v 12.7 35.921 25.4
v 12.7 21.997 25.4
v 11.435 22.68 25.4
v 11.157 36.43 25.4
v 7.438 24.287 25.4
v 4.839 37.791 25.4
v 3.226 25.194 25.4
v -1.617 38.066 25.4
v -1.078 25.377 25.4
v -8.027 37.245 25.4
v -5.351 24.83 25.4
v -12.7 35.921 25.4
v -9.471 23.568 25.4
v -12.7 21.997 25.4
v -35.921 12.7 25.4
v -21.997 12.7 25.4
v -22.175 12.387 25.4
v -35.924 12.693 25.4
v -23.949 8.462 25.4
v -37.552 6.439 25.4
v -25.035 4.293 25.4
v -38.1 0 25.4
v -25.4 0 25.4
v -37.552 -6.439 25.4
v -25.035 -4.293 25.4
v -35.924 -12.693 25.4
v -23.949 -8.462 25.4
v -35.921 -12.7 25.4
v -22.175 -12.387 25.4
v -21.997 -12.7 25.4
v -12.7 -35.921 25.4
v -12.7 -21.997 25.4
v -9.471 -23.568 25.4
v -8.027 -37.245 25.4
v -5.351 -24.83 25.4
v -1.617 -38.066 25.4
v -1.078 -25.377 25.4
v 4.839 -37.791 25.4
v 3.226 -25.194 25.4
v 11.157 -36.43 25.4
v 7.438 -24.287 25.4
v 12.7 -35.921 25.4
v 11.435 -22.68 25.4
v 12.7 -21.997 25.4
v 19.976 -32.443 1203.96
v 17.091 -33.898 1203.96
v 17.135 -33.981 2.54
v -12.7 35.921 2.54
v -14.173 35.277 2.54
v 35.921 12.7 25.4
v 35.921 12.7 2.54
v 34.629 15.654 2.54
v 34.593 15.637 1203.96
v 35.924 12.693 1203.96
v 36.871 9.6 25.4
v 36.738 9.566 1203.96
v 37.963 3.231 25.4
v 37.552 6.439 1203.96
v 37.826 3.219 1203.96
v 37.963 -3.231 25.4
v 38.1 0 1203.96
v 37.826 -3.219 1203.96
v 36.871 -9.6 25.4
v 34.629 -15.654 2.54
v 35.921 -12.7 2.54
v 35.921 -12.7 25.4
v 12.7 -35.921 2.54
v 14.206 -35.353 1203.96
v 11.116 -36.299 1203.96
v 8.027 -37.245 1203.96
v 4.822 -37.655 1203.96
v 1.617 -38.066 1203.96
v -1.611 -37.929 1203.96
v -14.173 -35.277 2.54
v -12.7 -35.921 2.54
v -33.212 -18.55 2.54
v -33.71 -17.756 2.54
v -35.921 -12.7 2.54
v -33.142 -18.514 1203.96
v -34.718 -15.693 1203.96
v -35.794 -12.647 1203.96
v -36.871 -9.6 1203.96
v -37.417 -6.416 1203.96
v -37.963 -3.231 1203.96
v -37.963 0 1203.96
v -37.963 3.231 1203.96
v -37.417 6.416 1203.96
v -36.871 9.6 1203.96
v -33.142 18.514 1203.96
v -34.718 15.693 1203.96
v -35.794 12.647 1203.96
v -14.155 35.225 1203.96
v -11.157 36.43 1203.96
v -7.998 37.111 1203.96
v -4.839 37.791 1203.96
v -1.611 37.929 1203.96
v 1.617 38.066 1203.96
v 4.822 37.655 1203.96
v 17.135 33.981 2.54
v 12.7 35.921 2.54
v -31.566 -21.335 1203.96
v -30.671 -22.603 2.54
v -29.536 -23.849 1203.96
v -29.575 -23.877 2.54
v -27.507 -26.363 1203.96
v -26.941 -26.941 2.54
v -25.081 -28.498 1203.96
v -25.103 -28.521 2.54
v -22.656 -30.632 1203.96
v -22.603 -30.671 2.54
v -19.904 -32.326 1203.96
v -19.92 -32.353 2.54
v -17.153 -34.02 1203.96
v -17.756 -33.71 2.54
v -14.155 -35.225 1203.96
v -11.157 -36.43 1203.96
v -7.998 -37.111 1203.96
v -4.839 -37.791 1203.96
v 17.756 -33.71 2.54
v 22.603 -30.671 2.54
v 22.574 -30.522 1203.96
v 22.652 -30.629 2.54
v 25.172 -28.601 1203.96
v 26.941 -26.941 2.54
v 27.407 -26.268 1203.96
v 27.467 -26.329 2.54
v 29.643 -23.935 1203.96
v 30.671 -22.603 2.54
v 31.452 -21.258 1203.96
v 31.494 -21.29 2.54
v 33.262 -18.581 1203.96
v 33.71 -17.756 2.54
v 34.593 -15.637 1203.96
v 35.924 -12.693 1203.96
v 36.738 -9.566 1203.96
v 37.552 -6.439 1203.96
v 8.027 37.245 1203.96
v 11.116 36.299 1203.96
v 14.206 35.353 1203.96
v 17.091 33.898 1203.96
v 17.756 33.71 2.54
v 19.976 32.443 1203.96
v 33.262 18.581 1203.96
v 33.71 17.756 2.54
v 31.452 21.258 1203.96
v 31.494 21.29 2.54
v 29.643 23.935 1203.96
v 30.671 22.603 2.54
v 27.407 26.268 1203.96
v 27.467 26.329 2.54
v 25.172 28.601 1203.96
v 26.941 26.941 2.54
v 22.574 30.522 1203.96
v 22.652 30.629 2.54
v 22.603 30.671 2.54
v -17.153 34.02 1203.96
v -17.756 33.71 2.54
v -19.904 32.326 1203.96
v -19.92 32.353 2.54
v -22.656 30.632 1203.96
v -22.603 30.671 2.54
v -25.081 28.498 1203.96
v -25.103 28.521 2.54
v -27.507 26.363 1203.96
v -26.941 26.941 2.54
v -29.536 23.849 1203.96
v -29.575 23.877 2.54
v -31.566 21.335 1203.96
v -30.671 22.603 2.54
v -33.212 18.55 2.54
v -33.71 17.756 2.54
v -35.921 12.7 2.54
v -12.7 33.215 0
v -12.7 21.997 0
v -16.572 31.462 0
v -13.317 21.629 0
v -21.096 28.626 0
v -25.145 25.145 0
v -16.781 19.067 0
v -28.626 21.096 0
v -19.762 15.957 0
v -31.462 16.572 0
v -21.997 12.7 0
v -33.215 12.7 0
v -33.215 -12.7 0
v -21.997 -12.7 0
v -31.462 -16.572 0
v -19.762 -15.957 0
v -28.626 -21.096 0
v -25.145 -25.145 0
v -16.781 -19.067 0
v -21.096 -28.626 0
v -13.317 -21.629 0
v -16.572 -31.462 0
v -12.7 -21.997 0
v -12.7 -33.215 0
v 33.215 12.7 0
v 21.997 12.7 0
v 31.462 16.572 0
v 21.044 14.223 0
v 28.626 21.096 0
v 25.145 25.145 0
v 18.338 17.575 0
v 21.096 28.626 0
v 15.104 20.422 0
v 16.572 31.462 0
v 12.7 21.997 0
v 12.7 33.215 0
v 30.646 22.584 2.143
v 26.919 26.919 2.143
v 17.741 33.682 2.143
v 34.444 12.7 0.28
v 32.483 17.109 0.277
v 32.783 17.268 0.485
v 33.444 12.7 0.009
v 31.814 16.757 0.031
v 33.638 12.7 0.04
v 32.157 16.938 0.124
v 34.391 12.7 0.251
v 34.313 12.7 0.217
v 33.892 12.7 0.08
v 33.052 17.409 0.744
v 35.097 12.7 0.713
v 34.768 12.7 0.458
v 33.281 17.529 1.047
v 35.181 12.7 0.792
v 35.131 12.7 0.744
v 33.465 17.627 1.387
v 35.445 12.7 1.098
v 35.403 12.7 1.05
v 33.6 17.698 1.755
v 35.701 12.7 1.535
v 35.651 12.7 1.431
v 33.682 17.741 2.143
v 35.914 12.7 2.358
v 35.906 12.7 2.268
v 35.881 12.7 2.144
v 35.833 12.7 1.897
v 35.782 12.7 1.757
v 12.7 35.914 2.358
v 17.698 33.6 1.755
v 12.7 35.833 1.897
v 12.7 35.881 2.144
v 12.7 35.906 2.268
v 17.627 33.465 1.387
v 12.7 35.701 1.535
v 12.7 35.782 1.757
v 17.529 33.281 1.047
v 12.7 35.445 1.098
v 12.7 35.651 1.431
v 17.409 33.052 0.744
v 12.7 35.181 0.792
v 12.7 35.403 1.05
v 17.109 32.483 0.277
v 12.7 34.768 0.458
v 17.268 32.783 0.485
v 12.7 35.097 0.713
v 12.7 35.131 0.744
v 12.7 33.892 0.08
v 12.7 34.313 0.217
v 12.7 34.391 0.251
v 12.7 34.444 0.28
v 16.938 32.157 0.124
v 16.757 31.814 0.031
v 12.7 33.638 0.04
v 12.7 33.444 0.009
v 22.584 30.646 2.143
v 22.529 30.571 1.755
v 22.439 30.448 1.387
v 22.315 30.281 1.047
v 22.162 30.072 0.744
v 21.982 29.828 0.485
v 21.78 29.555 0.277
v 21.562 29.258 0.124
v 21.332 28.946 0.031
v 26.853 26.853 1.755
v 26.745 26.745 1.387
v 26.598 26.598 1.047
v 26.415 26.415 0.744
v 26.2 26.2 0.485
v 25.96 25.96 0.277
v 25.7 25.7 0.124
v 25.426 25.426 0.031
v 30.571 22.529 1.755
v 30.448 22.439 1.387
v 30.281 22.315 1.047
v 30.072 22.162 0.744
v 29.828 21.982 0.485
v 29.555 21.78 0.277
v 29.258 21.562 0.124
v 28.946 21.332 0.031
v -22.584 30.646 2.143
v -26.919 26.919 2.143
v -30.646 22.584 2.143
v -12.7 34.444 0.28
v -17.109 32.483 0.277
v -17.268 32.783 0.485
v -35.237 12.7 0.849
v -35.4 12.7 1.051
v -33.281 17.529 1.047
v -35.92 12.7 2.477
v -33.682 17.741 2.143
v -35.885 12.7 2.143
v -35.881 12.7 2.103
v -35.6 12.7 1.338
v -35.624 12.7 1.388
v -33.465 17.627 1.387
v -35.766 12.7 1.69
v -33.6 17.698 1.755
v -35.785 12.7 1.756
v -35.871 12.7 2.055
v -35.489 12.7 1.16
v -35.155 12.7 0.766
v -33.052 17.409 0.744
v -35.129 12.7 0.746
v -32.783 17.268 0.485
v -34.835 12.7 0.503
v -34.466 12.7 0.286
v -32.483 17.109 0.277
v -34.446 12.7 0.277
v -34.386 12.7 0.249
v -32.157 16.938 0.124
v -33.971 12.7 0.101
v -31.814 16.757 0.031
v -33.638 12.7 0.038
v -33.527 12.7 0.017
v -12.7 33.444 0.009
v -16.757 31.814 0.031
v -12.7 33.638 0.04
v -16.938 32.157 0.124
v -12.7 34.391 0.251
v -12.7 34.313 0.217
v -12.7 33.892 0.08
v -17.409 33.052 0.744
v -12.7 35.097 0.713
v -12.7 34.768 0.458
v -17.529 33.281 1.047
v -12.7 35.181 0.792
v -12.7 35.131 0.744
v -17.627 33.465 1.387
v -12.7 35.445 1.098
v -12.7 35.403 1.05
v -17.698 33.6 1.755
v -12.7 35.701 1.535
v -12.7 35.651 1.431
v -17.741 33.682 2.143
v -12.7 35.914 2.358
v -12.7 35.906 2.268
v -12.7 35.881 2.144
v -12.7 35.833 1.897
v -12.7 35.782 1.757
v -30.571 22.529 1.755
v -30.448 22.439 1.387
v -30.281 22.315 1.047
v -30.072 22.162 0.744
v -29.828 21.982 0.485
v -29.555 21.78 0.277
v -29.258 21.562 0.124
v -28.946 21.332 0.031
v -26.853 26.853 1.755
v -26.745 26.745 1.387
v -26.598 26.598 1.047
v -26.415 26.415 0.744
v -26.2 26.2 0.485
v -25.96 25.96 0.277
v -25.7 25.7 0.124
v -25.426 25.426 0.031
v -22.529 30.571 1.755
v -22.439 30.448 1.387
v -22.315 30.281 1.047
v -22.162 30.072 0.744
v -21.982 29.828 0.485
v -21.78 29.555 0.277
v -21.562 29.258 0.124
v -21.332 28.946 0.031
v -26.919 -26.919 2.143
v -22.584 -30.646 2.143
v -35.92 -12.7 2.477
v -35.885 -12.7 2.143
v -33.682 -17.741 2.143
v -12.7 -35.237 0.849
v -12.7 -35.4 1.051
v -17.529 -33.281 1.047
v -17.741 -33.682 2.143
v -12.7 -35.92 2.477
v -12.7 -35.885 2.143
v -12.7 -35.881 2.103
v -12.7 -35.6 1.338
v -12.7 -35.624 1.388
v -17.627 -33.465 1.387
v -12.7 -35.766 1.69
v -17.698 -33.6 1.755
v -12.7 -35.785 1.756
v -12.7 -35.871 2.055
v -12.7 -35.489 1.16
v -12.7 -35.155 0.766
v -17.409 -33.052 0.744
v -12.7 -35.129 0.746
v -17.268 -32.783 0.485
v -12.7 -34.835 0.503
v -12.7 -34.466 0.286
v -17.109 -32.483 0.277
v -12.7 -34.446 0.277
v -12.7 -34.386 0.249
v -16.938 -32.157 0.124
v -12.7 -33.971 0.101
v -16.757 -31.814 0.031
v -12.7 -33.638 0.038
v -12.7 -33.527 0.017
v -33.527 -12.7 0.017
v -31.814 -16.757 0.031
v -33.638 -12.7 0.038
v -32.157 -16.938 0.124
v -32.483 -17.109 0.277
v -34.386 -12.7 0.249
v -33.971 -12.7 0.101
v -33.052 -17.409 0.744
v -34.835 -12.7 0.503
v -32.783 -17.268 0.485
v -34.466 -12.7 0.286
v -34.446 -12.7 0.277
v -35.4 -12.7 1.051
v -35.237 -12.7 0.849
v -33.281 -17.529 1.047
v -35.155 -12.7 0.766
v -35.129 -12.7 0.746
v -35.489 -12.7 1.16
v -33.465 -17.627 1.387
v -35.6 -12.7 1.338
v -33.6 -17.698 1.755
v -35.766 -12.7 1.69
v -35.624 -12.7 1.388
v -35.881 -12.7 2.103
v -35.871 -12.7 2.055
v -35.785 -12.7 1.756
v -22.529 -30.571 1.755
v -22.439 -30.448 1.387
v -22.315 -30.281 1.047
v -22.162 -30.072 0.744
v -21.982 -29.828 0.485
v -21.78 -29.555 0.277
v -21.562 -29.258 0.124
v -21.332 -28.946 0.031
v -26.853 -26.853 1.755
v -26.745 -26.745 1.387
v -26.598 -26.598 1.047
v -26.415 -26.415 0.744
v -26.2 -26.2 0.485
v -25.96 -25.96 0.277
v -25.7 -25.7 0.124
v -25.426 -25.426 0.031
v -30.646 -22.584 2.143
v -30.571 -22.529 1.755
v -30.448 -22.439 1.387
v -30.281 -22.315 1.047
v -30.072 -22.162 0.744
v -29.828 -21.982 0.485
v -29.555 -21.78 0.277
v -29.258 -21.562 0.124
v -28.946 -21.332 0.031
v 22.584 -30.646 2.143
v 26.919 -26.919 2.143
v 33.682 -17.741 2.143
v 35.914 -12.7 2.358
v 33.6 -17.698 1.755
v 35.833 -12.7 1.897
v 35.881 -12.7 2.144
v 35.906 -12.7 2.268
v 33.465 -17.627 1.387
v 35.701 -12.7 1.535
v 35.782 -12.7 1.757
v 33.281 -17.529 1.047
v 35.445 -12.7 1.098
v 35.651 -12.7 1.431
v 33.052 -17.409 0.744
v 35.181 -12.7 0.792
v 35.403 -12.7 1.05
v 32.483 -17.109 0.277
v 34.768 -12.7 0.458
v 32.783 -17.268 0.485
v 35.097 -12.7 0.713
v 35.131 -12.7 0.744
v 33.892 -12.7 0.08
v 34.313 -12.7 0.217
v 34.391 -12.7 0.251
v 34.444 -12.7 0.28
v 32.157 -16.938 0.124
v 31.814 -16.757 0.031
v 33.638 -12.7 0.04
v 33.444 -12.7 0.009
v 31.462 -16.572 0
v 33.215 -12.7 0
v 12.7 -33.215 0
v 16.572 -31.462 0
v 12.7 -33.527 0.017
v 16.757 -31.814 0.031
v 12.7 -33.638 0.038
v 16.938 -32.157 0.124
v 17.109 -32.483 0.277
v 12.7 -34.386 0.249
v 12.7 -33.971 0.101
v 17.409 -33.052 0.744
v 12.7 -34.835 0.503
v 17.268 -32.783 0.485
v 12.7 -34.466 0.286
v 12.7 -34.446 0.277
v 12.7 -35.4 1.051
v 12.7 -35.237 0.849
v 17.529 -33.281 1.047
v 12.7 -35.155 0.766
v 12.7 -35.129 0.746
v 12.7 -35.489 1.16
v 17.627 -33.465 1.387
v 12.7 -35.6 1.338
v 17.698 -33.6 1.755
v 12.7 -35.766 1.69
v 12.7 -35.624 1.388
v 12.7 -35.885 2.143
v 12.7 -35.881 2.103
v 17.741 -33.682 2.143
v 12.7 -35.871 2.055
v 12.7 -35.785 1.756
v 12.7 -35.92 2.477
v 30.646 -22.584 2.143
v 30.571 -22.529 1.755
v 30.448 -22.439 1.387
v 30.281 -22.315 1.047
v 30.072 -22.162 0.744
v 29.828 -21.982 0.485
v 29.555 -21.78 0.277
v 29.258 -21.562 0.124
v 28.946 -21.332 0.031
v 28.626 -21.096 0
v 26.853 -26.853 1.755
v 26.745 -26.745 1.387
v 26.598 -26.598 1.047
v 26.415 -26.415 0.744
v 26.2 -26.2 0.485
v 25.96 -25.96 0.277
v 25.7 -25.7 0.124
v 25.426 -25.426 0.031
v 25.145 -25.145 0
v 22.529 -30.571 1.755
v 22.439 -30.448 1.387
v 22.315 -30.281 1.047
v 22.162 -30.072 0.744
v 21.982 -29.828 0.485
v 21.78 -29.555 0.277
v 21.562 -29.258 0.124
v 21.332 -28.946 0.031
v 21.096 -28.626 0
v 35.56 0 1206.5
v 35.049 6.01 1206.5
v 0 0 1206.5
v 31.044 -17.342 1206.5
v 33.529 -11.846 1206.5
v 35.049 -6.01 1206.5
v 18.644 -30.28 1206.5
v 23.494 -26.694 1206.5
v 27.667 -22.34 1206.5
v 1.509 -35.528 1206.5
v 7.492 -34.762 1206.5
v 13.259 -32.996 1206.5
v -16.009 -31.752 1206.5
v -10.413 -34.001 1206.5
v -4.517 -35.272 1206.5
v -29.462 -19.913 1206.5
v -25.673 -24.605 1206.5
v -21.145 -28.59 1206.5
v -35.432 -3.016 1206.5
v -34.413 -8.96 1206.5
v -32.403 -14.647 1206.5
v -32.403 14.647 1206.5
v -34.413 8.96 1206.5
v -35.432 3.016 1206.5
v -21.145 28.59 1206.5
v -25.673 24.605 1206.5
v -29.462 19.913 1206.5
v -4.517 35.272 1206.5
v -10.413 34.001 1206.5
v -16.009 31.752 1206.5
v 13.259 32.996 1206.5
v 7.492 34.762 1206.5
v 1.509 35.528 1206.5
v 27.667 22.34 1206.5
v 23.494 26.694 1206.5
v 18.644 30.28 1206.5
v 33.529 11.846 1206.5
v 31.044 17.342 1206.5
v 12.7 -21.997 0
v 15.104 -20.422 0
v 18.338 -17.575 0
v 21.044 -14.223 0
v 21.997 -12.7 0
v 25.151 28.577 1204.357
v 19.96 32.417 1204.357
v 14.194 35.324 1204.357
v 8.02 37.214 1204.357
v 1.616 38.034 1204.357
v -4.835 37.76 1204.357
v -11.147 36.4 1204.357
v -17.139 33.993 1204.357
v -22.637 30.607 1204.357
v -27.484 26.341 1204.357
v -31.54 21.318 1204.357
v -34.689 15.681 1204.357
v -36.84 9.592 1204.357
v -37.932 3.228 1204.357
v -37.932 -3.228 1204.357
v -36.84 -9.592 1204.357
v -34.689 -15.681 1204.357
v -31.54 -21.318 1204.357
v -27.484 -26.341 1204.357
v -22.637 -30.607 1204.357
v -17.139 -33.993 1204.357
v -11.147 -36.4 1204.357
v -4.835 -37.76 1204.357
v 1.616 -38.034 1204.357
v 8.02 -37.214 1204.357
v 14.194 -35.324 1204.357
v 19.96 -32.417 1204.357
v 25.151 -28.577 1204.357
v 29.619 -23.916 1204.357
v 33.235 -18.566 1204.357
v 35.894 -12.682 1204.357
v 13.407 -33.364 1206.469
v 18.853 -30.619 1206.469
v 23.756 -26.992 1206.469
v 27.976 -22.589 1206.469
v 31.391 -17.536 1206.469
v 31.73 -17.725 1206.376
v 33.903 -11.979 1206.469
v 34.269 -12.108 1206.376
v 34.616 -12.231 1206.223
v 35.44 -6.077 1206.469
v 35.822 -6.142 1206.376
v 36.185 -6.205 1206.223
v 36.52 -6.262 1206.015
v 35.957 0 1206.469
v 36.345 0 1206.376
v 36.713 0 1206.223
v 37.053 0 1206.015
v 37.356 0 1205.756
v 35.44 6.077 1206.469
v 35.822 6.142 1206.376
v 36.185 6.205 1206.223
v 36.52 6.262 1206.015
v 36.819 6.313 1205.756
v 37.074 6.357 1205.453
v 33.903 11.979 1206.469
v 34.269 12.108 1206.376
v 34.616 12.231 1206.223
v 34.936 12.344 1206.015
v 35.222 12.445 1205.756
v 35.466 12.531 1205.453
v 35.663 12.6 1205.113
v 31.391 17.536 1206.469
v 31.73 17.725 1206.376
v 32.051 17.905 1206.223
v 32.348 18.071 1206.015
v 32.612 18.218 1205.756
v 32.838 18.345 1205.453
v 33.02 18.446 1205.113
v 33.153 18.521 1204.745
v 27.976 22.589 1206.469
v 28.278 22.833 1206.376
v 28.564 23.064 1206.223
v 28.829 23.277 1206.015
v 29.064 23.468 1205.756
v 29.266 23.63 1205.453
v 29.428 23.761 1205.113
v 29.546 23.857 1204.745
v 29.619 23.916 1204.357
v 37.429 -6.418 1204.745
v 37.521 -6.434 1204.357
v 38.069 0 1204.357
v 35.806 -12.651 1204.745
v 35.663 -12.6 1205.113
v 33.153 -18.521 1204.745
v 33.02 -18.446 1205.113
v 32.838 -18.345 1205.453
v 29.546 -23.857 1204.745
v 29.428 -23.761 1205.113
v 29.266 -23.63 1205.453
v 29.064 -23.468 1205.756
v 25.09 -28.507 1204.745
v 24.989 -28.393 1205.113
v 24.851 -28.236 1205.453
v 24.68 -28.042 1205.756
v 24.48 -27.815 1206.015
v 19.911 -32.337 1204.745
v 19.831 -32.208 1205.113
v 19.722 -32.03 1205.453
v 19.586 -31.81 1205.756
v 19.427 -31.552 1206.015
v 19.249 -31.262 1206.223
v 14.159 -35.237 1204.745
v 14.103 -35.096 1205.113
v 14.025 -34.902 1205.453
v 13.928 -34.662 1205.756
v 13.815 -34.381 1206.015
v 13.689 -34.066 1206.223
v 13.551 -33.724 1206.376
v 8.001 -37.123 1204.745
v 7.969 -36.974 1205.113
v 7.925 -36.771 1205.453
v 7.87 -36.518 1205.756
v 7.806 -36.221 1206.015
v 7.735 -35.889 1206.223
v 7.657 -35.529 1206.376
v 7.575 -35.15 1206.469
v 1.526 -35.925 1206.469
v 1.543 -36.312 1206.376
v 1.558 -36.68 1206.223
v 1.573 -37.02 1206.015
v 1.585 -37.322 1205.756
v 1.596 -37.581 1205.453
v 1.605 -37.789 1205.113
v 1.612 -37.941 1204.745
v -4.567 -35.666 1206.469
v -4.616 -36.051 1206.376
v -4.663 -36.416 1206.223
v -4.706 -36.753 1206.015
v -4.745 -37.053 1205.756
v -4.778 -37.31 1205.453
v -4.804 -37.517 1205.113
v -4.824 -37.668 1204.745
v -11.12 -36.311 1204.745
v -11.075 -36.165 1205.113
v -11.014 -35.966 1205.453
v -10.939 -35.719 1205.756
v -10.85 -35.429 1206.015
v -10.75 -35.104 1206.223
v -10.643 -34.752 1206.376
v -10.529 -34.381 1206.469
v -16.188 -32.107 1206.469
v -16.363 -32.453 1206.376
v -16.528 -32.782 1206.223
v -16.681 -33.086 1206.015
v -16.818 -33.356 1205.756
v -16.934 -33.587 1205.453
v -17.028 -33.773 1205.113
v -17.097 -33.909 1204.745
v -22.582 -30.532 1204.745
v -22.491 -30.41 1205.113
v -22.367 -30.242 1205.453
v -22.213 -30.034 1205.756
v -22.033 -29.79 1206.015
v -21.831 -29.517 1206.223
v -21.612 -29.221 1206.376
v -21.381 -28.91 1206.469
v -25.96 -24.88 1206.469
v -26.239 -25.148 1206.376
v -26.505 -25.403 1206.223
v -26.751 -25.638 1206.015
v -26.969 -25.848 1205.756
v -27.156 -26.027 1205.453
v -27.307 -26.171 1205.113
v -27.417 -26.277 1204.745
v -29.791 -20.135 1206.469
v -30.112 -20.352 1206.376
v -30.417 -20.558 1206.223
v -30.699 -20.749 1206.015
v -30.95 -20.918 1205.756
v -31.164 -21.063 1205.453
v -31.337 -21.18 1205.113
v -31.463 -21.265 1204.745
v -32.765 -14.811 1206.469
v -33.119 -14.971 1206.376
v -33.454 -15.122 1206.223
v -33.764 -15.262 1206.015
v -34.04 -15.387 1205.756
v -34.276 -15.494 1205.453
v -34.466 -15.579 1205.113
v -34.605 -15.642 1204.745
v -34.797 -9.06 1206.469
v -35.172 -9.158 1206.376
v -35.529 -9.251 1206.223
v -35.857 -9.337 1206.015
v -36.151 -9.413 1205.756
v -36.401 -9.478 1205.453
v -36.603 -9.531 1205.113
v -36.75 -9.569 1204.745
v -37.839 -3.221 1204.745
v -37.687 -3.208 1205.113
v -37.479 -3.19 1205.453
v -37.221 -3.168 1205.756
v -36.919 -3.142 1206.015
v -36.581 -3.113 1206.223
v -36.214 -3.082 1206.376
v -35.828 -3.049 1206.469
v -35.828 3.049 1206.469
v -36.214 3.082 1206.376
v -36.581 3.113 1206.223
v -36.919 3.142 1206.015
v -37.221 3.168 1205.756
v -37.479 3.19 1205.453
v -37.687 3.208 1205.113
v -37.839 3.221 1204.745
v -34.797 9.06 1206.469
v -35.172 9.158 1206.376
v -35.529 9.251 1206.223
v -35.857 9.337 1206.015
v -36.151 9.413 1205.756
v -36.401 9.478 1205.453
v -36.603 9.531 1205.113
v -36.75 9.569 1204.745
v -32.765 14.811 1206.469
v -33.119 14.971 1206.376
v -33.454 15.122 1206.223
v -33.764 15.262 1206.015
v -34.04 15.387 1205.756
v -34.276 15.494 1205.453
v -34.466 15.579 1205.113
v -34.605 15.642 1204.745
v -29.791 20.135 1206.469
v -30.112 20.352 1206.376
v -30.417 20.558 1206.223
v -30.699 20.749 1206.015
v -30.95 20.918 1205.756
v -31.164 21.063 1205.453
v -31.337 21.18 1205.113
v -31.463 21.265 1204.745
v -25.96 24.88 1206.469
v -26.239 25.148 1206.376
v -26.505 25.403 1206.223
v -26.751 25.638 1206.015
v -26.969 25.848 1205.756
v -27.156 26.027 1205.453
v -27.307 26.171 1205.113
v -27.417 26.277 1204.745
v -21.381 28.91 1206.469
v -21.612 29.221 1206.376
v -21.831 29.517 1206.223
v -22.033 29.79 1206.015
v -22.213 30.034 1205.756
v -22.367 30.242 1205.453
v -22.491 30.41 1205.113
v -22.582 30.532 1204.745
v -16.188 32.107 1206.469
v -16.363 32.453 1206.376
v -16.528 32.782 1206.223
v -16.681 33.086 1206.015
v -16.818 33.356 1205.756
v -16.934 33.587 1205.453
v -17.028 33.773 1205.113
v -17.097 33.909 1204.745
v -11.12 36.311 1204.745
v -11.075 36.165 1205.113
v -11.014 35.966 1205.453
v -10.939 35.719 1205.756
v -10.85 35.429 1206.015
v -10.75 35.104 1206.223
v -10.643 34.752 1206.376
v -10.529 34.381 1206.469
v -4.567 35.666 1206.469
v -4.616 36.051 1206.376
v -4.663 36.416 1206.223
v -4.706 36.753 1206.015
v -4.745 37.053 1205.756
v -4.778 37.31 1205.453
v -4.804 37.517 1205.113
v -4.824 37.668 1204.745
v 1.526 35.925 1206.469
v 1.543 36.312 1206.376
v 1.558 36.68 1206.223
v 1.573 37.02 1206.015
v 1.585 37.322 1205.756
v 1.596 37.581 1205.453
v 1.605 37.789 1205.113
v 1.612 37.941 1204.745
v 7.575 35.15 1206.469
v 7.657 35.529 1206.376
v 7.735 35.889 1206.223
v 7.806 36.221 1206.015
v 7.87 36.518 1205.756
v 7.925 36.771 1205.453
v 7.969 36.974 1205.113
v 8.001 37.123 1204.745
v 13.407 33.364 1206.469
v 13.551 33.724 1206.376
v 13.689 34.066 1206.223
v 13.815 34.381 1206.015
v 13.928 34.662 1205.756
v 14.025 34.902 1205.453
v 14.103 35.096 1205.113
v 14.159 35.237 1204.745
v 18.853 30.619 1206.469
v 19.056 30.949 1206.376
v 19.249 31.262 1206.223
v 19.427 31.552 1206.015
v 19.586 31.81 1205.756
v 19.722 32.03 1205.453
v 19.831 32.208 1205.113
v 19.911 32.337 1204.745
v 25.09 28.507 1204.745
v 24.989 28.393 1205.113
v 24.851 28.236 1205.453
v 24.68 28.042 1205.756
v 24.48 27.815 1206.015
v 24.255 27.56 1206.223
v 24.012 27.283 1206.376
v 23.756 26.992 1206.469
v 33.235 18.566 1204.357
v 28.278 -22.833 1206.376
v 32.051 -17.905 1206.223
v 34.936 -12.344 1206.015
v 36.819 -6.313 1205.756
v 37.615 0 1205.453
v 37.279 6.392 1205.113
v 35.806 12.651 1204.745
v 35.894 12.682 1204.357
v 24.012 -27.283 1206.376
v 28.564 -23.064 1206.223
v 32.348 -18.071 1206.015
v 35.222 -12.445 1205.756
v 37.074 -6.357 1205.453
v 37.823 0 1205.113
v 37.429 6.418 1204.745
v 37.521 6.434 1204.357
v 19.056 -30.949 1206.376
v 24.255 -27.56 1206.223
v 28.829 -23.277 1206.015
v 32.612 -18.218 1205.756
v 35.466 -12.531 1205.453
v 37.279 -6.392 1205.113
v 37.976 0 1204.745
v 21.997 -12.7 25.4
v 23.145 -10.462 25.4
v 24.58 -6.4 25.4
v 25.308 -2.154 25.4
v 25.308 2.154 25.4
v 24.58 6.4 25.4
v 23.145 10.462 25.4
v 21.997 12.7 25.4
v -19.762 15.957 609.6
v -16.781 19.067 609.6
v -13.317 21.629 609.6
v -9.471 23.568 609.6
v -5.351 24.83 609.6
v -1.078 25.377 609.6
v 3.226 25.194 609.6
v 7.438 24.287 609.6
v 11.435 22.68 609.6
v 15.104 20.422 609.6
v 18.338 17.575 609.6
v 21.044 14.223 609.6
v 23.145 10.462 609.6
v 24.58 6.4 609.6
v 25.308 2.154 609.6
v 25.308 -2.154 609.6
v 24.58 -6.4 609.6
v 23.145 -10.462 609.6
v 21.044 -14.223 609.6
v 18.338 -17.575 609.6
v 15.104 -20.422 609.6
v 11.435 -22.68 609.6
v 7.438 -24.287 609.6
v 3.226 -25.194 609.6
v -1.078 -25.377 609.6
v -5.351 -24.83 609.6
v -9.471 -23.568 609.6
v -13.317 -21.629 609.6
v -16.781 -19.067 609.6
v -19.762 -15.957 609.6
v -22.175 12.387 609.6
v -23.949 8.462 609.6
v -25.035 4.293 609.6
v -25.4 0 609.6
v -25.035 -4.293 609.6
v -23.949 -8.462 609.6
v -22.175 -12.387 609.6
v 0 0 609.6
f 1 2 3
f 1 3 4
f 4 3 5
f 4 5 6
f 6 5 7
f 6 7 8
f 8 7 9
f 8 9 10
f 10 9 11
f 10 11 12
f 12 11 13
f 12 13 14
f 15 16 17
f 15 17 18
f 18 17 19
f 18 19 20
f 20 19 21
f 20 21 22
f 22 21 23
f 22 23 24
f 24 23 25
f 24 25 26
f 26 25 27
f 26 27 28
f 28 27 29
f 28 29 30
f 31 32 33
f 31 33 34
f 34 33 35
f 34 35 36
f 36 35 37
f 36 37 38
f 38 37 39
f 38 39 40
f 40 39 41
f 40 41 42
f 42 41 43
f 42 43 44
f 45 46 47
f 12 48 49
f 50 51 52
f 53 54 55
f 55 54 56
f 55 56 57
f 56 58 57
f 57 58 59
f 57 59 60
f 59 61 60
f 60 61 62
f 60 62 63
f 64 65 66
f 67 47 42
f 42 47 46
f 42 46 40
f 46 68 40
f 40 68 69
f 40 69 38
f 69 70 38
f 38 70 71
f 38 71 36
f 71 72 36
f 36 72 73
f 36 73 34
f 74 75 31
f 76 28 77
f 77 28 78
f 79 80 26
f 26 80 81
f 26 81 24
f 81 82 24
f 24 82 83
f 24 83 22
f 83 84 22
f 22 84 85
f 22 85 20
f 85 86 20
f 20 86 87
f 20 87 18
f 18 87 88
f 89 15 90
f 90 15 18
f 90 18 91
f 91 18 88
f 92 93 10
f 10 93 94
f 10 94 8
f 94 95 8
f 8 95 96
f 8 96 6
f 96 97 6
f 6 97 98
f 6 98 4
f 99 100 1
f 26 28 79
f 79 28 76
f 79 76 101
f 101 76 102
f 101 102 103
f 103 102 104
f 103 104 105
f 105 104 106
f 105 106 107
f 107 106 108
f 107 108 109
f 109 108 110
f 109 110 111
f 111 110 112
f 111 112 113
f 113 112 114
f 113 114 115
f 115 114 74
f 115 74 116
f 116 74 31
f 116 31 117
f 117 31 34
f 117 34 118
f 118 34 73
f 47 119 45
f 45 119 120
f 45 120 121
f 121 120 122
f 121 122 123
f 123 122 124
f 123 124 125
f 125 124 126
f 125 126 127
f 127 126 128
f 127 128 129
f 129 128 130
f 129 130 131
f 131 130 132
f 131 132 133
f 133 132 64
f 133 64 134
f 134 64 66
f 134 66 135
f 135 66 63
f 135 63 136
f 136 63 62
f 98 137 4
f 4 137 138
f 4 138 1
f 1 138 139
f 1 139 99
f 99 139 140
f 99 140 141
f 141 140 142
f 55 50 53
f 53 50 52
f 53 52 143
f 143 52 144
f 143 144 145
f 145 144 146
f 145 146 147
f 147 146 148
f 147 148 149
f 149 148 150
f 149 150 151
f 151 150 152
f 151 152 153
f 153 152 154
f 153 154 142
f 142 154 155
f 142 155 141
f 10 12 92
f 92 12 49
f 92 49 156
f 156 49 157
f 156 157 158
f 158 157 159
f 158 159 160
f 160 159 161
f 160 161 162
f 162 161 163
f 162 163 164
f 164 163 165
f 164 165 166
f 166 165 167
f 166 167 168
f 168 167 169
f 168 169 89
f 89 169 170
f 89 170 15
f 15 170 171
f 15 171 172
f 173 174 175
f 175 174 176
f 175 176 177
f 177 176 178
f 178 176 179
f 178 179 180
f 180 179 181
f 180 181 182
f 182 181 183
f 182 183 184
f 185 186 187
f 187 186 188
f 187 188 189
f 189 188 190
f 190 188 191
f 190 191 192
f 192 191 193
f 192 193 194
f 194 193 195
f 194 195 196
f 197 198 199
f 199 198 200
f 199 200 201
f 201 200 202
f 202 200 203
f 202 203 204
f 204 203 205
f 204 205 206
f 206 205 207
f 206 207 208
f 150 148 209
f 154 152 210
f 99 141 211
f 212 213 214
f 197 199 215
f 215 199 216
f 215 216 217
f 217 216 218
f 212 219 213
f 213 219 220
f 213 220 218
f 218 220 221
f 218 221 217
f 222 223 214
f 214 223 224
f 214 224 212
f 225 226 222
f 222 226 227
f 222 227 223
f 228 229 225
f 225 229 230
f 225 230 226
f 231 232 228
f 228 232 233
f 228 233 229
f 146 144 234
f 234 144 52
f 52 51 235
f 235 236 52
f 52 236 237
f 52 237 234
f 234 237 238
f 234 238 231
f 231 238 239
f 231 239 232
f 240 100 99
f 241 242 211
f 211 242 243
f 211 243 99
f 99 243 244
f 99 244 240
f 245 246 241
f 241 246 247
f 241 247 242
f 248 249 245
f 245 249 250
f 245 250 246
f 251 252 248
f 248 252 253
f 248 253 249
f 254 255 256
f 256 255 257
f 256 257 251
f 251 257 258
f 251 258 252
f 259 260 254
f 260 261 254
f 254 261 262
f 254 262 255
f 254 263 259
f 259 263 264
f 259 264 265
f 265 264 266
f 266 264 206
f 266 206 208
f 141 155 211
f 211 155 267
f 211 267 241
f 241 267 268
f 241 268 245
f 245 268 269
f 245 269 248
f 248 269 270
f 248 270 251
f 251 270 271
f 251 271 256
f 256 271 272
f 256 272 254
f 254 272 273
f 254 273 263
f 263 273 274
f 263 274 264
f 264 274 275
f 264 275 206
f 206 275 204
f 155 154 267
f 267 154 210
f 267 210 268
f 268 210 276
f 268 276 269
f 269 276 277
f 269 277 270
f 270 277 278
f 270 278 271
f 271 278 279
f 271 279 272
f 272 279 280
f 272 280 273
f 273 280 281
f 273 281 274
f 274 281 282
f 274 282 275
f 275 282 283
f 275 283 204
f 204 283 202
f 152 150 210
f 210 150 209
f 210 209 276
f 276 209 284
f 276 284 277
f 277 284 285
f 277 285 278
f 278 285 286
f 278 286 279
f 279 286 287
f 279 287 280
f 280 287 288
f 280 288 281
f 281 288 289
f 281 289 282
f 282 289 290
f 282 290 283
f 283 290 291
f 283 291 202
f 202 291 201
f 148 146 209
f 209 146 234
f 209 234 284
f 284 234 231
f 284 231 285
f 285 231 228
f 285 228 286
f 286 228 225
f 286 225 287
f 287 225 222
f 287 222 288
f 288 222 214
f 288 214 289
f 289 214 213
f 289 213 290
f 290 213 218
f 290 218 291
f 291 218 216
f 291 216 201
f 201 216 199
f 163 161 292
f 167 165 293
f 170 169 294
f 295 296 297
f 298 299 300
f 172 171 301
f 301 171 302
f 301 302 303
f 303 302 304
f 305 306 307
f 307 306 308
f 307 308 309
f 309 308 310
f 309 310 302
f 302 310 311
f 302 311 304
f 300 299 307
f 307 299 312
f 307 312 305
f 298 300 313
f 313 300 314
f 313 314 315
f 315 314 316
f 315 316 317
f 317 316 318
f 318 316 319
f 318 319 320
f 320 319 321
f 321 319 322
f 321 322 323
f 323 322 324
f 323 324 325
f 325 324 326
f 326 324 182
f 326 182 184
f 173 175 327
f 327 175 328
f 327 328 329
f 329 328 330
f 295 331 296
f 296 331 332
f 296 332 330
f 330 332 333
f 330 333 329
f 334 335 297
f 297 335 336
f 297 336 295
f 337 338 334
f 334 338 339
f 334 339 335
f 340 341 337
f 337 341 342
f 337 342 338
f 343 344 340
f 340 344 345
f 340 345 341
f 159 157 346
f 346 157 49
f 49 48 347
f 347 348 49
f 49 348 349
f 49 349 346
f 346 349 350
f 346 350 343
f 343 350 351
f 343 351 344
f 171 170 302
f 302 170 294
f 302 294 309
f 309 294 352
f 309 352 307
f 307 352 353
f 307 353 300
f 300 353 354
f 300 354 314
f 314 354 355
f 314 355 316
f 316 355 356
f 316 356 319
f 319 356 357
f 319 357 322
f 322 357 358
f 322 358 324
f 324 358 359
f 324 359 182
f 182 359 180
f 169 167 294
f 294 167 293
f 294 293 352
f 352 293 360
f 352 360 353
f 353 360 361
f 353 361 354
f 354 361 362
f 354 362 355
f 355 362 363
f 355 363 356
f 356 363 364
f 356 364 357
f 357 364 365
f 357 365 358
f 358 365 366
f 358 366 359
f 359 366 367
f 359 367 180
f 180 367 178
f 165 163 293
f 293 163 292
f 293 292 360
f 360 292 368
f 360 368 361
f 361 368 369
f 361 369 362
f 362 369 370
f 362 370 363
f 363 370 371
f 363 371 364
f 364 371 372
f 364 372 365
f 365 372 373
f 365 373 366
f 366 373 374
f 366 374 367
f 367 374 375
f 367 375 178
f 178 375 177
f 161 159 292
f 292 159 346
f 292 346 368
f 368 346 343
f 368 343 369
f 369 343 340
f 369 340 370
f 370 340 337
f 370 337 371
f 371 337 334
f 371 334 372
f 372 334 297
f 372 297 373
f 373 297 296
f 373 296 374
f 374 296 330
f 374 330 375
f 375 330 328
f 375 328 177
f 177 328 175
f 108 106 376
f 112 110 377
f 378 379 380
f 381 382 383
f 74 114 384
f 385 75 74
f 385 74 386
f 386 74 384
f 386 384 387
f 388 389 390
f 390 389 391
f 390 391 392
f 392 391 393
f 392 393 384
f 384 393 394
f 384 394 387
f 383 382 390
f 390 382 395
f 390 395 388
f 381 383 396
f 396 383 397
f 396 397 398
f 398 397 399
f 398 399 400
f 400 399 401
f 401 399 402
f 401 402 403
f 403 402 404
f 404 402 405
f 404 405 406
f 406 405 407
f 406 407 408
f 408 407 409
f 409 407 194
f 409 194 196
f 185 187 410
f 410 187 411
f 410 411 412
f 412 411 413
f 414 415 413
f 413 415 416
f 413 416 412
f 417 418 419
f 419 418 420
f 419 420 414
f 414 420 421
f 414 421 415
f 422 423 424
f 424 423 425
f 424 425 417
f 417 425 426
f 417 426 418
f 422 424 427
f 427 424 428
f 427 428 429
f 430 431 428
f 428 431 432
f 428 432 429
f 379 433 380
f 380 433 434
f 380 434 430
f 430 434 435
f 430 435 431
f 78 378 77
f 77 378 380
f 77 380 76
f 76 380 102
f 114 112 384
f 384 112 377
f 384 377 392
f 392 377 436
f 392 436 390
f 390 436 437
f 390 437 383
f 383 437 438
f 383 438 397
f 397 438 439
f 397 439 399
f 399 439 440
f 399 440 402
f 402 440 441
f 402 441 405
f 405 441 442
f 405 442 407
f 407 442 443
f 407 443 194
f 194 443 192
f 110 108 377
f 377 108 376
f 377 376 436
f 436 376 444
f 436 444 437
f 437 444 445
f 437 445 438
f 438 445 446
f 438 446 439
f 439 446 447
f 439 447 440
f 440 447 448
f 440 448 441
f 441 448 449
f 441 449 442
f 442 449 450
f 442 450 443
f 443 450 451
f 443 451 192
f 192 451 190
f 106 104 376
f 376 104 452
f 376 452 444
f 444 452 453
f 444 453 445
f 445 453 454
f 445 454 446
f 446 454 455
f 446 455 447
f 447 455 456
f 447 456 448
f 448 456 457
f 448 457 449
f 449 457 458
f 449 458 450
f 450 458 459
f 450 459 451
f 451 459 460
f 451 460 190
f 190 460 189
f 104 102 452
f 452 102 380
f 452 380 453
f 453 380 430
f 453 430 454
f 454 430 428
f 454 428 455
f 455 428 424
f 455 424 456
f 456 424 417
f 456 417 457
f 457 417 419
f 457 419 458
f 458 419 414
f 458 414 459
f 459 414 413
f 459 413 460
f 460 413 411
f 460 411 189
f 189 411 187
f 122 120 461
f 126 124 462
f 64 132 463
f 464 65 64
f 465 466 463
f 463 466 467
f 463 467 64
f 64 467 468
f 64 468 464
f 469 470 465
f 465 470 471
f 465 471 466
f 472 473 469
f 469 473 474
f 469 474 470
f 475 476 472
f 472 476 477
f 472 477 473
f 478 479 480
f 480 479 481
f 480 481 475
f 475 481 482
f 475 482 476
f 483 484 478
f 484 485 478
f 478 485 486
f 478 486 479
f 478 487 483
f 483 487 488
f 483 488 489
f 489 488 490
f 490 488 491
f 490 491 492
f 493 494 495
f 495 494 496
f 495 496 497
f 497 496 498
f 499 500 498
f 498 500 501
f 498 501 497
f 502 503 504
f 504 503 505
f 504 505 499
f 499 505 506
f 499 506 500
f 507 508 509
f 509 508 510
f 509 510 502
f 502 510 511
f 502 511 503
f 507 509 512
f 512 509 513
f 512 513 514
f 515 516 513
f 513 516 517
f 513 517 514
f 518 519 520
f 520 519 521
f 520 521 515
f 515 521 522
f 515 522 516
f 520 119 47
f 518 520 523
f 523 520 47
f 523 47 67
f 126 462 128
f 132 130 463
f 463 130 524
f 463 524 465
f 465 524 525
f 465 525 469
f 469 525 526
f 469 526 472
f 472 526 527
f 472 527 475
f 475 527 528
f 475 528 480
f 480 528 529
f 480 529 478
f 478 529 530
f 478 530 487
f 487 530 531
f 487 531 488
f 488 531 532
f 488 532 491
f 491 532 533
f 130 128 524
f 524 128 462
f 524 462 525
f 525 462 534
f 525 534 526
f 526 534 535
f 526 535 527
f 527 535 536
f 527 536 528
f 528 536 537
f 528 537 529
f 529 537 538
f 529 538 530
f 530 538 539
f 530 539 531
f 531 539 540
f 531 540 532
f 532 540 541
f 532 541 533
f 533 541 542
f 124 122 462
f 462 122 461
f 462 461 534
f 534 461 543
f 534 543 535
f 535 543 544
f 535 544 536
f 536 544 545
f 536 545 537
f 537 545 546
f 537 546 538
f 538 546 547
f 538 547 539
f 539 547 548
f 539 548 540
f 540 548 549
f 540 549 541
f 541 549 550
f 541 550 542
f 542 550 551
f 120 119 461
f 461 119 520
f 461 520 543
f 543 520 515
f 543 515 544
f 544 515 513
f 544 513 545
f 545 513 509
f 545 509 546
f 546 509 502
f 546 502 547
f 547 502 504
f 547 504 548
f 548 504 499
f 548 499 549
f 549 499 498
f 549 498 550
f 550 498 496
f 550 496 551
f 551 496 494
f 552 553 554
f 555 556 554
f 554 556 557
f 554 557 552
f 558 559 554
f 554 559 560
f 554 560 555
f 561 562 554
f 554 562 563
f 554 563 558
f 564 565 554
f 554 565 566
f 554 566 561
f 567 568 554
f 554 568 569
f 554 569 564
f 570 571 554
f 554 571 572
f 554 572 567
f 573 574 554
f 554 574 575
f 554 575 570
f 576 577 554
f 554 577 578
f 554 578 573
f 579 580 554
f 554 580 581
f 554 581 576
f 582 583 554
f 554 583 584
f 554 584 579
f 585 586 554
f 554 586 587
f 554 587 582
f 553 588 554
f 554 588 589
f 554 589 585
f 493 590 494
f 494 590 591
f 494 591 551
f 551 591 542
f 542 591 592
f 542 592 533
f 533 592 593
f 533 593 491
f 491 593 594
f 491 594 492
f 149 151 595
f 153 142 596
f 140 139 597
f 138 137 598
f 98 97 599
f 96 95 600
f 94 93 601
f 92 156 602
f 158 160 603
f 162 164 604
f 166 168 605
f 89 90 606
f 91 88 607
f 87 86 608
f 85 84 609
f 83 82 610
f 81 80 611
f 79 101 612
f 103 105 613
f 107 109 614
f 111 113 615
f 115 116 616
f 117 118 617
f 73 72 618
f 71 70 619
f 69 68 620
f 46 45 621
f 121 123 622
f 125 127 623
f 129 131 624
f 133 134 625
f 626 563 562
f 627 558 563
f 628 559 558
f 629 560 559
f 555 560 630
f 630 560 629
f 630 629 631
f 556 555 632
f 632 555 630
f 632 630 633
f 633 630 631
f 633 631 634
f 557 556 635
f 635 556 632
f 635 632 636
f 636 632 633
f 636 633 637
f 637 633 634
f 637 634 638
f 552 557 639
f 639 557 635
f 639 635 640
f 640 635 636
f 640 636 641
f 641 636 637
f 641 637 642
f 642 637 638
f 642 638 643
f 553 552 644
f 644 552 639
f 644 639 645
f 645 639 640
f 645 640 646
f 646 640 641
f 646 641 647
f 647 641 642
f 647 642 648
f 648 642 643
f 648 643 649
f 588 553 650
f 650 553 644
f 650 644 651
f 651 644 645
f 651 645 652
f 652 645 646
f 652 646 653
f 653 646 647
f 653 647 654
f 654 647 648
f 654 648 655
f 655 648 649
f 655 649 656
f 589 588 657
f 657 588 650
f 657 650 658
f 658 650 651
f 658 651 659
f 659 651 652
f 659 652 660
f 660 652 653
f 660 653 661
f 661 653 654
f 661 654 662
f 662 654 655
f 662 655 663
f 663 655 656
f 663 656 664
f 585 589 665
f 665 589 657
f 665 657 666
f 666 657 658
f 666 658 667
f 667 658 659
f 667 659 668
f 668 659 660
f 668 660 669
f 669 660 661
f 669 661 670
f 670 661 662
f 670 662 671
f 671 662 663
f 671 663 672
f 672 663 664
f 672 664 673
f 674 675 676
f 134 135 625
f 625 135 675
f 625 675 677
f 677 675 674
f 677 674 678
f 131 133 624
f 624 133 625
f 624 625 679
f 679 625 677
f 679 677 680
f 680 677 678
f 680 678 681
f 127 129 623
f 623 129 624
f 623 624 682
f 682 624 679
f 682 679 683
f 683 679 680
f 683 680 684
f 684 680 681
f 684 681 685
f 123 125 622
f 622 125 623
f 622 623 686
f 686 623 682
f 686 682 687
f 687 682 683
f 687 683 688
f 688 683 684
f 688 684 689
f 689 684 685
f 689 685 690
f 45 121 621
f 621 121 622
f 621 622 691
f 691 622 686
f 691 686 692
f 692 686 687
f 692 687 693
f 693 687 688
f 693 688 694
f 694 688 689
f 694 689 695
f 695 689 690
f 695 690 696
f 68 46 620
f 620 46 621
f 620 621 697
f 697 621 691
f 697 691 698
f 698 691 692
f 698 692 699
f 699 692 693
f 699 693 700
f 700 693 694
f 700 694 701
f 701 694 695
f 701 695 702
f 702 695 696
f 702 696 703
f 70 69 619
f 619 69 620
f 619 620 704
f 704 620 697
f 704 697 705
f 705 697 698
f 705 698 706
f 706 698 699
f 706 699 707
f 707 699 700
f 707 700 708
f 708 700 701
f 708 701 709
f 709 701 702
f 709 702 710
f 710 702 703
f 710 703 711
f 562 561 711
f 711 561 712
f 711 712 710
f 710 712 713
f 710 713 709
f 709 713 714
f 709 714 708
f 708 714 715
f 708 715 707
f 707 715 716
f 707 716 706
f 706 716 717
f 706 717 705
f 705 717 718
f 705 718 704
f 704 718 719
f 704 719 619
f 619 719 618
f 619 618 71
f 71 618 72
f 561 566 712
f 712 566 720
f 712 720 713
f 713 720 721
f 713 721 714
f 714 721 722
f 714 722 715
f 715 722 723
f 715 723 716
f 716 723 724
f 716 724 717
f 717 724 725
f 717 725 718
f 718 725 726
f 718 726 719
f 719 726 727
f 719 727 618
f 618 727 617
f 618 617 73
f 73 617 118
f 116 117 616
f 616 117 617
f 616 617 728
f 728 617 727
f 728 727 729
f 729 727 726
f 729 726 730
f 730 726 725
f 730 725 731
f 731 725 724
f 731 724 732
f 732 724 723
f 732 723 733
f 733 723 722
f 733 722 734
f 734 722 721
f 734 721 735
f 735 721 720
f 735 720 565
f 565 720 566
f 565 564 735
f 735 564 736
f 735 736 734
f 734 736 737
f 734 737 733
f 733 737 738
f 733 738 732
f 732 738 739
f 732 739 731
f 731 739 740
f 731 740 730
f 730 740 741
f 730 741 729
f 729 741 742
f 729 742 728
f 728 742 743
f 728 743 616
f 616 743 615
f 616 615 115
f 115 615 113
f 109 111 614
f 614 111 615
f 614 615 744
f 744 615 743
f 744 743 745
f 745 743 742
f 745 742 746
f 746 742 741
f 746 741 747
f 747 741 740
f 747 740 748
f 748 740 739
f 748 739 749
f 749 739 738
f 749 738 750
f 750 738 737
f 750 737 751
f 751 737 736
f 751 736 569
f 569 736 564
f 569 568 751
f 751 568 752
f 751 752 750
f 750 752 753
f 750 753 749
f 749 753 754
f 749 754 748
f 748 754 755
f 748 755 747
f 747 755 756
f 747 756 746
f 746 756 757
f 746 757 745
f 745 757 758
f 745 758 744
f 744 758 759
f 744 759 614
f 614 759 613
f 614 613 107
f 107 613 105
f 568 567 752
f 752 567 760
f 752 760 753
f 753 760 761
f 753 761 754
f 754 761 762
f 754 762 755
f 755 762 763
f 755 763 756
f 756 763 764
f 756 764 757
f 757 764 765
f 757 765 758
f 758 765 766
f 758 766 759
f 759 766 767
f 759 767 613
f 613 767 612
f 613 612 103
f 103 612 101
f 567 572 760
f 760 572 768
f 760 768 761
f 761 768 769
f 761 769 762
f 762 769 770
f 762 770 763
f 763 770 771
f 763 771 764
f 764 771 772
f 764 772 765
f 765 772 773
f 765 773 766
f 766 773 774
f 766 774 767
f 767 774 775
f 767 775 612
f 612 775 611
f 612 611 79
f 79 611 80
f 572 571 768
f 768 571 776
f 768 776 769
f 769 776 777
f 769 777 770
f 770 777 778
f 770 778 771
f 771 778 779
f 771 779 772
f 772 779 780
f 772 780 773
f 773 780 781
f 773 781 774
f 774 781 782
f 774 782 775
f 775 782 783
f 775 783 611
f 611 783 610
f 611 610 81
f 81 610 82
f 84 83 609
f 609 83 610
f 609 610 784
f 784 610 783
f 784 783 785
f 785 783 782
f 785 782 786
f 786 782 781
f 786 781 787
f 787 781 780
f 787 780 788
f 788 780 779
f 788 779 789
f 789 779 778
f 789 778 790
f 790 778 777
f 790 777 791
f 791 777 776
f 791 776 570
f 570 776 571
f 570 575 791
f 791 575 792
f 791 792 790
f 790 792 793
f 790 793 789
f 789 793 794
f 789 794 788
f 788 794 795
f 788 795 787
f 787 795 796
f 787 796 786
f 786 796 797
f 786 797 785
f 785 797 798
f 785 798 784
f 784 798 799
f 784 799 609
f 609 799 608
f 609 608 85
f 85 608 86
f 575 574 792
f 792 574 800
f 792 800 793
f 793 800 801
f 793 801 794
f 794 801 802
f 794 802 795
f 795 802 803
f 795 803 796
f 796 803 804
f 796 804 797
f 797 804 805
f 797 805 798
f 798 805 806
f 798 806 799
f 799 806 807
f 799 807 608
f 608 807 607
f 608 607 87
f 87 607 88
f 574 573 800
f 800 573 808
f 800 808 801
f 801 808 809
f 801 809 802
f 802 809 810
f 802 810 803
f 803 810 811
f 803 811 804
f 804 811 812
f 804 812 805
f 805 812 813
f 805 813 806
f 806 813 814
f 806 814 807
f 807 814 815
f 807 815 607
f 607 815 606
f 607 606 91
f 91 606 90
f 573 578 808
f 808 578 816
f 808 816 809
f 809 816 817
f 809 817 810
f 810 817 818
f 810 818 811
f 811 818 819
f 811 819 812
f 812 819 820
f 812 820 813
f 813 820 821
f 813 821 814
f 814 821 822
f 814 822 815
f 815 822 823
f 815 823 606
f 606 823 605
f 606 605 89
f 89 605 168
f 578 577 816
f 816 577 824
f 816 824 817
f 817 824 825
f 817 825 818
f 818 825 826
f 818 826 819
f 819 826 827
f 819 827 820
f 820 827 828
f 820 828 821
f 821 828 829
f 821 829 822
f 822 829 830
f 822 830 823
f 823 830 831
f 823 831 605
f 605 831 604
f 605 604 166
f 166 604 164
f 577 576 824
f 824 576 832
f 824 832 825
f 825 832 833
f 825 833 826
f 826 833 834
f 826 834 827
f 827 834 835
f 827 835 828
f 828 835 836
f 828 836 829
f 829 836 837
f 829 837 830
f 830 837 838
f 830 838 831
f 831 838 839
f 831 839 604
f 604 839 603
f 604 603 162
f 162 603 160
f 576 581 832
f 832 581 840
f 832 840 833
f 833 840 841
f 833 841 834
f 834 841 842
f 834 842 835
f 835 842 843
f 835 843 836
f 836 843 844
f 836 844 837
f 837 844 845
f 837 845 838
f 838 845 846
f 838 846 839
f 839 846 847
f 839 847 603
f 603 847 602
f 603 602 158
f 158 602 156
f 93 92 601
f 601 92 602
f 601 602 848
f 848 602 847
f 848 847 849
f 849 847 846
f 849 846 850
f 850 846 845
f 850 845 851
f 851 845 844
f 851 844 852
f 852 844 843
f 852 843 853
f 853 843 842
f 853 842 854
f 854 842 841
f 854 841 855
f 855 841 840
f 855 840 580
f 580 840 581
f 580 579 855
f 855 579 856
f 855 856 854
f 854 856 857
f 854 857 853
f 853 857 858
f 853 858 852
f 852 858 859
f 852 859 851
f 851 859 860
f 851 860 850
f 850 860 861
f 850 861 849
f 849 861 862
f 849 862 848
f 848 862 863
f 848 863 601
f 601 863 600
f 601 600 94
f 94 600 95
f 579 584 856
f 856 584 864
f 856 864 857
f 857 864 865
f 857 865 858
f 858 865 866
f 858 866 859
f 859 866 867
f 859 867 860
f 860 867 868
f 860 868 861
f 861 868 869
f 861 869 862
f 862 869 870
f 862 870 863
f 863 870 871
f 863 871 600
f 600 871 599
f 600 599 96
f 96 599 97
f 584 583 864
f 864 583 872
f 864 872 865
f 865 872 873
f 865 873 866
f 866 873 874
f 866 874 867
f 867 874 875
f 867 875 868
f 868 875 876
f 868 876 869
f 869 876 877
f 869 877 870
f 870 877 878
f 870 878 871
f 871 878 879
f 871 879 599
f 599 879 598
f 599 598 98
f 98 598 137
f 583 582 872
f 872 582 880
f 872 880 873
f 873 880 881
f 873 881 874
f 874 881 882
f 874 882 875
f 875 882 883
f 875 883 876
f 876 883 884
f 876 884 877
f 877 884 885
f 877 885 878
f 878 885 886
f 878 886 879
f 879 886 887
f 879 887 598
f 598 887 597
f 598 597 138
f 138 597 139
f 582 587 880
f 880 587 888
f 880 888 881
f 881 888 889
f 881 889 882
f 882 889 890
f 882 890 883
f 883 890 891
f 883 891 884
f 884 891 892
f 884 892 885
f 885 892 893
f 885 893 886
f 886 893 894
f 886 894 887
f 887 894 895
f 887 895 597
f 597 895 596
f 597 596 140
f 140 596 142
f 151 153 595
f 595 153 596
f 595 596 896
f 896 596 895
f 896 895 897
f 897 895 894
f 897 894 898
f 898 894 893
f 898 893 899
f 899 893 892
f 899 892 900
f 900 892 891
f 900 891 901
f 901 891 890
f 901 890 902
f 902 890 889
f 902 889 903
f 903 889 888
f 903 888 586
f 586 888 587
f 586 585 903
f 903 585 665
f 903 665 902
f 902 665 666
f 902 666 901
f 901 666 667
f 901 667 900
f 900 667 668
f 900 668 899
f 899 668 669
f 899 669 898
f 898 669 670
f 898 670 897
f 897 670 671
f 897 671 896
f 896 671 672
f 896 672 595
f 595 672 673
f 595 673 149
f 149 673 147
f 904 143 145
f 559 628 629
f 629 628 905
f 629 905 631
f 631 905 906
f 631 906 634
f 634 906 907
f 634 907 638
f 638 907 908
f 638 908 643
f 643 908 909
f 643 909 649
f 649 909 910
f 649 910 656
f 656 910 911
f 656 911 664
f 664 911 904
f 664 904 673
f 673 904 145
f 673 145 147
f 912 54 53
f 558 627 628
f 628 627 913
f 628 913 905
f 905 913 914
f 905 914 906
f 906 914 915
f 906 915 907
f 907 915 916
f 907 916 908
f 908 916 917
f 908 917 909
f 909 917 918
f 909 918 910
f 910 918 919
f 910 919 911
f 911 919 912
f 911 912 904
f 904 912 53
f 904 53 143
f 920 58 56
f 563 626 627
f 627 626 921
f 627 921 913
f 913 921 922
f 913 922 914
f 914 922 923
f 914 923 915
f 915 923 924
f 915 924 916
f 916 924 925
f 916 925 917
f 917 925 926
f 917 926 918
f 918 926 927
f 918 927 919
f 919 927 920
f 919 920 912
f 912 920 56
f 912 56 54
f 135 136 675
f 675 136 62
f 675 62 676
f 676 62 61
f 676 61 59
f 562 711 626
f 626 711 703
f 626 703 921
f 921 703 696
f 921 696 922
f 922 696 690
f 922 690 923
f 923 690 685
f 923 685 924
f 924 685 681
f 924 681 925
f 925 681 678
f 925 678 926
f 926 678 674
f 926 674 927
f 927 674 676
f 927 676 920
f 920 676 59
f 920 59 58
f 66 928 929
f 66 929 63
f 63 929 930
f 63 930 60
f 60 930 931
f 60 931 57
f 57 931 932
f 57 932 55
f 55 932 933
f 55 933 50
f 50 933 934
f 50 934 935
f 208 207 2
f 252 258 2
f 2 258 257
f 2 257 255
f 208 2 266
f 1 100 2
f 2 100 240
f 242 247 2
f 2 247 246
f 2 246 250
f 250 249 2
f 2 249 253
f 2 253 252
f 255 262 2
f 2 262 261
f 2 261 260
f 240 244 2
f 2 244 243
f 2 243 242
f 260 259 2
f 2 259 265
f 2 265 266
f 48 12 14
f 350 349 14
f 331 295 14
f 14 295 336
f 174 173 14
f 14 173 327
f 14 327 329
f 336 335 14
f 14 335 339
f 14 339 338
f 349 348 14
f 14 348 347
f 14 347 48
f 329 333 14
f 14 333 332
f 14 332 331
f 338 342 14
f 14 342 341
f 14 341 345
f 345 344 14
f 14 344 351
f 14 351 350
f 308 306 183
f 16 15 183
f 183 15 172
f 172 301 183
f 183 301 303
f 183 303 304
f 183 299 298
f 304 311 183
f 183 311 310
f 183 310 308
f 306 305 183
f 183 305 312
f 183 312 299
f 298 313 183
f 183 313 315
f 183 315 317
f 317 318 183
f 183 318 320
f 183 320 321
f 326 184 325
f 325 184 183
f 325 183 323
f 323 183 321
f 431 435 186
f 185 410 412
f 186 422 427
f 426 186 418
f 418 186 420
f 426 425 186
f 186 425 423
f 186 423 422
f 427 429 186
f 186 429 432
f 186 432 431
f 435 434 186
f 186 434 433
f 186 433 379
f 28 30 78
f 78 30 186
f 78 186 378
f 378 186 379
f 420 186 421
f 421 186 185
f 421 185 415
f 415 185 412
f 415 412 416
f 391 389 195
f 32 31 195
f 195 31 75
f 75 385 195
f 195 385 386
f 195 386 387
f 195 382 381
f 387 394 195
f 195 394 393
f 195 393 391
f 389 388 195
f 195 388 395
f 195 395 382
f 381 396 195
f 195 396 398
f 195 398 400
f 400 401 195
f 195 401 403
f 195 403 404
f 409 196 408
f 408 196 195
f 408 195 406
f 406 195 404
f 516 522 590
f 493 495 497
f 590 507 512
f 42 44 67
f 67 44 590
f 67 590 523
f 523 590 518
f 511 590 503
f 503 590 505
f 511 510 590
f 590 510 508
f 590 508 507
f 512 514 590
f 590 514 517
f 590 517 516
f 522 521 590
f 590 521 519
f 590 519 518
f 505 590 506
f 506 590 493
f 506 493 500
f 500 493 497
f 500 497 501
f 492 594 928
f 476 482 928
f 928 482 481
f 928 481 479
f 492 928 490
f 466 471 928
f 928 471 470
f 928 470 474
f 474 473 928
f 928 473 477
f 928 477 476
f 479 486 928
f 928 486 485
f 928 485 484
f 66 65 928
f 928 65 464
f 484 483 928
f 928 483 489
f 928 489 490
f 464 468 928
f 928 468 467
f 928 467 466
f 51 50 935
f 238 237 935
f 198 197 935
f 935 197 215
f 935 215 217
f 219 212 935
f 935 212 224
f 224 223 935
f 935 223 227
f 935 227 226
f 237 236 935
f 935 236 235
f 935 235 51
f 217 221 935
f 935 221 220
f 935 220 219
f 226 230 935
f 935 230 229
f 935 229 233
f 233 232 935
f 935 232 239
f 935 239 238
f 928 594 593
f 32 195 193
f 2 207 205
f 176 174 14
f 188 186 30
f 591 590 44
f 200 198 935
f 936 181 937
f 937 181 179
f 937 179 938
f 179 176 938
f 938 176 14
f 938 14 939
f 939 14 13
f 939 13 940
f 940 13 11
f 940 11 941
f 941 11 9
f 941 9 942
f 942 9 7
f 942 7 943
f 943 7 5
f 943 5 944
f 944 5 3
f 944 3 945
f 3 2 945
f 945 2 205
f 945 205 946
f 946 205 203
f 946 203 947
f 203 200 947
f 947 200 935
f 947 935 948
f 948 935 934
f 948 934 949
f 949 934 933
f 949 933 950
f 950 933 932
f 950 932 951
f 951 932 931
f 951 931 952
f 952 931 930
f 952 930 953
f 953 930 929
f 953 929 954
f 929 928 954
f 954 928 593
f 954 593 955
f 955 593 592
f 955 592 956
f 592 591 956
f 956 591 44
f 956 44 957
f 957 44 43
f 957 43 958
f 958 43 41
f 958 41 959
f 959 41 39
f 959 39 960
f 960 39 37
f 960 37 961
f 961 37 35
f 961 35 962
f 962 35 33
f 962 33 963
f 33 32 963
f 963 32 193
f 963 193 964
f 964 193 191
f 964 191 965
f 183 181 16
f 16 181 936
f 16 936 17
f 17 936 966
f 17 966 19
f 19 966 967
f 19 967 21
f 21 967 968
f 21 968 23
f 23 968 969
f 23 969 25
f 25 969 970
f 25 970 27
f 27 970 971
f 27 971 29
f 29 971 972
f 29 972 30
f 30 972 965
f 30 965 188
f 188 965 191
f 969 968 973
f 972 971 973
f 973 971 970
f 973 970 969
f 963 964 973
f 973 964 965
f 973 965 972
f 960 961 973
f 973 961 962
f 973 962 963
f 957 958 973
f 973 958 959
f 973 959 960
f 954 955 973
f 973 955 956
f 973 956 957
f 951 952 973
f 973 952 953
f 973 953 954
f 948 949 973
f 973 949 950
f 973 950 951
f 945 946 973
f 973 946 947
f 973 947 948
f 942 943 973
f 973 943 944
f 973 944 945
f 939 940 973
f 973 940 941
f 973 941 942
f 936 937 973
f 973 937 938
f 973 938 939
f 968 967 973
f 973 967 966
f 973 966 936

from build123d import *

# Parameters (mm, degrees)
SKETCH1_R           = 38.1
BOSS_EXTRUDE1_DEPTH = 1206.5
FILLET1_R           = 2.54
FILLET2_R           = 2.54
CUT_EXTRUDE2_DEPTH  = 25.4
SKETCH2_R           = 25.4
CUT_EXTRUDE1_DEPTH  = 609.6


with BuildPart() as part:
    # Sketch1 → Boss-Extrude1 (new body)
    with BuildSketch(Plane.XY):
        Circle(SKETCH1_R)
    extrude(amount=BOSS_EXTRUDE1_DEPTH)

    # Fillet1
    fillet1_edges = [part.edges().sort_by_distance(p)[0] for p in [
        (-38.1, 0, 1206.5),
    ]]
    fillet(fillet1_edges, radius=FILLET1_R)

    # Fillet2
    fillet2_edges = [part.edges().sort_by_distance(p)[0] for p in [
        (-38.1, 0, 0),
    ]]
    fillet(fillet2_edges, radius=FILLET2_R)

    # Sketch3 → Cut-Extrude2 (cut)
    with BuildSketch(Plane(origin=(0, 0, 0), x_dir=(-1, 0, 0), z_dir=(0, 0, -1))):
        Polygon((12.7, 12.7), (64.136774618, 12.7), (64.136774618, -12.7), (12.7, -12.7), (12.7, -42.915047722), (-12.7, -42.915047722), (-12.7, -12.7), (-64.765566526, -12.7), (-64.765566526, 12.7), (-12.7, 12.7), (-12.7, 40.714276044), (12.7, 40.714276044), align=None)
    extrude(amount=-CUT_EXTRUDE2_DEPTH, mode=Mode.SUBTRACT)

    # Sketch2 → Cut-Extrude1 (cut)
    with BuildSketch(Plane(origin=(0, 0, 0), x_dir=(-1, 0, 0), z_dir=(0, 0, -1))):
        Circle(SKETCH2_R)
    extrude(amount=-CUT_EXTRUDE1_DEPTH, mode=Mode.SUBTRACT)


solid = part.part
